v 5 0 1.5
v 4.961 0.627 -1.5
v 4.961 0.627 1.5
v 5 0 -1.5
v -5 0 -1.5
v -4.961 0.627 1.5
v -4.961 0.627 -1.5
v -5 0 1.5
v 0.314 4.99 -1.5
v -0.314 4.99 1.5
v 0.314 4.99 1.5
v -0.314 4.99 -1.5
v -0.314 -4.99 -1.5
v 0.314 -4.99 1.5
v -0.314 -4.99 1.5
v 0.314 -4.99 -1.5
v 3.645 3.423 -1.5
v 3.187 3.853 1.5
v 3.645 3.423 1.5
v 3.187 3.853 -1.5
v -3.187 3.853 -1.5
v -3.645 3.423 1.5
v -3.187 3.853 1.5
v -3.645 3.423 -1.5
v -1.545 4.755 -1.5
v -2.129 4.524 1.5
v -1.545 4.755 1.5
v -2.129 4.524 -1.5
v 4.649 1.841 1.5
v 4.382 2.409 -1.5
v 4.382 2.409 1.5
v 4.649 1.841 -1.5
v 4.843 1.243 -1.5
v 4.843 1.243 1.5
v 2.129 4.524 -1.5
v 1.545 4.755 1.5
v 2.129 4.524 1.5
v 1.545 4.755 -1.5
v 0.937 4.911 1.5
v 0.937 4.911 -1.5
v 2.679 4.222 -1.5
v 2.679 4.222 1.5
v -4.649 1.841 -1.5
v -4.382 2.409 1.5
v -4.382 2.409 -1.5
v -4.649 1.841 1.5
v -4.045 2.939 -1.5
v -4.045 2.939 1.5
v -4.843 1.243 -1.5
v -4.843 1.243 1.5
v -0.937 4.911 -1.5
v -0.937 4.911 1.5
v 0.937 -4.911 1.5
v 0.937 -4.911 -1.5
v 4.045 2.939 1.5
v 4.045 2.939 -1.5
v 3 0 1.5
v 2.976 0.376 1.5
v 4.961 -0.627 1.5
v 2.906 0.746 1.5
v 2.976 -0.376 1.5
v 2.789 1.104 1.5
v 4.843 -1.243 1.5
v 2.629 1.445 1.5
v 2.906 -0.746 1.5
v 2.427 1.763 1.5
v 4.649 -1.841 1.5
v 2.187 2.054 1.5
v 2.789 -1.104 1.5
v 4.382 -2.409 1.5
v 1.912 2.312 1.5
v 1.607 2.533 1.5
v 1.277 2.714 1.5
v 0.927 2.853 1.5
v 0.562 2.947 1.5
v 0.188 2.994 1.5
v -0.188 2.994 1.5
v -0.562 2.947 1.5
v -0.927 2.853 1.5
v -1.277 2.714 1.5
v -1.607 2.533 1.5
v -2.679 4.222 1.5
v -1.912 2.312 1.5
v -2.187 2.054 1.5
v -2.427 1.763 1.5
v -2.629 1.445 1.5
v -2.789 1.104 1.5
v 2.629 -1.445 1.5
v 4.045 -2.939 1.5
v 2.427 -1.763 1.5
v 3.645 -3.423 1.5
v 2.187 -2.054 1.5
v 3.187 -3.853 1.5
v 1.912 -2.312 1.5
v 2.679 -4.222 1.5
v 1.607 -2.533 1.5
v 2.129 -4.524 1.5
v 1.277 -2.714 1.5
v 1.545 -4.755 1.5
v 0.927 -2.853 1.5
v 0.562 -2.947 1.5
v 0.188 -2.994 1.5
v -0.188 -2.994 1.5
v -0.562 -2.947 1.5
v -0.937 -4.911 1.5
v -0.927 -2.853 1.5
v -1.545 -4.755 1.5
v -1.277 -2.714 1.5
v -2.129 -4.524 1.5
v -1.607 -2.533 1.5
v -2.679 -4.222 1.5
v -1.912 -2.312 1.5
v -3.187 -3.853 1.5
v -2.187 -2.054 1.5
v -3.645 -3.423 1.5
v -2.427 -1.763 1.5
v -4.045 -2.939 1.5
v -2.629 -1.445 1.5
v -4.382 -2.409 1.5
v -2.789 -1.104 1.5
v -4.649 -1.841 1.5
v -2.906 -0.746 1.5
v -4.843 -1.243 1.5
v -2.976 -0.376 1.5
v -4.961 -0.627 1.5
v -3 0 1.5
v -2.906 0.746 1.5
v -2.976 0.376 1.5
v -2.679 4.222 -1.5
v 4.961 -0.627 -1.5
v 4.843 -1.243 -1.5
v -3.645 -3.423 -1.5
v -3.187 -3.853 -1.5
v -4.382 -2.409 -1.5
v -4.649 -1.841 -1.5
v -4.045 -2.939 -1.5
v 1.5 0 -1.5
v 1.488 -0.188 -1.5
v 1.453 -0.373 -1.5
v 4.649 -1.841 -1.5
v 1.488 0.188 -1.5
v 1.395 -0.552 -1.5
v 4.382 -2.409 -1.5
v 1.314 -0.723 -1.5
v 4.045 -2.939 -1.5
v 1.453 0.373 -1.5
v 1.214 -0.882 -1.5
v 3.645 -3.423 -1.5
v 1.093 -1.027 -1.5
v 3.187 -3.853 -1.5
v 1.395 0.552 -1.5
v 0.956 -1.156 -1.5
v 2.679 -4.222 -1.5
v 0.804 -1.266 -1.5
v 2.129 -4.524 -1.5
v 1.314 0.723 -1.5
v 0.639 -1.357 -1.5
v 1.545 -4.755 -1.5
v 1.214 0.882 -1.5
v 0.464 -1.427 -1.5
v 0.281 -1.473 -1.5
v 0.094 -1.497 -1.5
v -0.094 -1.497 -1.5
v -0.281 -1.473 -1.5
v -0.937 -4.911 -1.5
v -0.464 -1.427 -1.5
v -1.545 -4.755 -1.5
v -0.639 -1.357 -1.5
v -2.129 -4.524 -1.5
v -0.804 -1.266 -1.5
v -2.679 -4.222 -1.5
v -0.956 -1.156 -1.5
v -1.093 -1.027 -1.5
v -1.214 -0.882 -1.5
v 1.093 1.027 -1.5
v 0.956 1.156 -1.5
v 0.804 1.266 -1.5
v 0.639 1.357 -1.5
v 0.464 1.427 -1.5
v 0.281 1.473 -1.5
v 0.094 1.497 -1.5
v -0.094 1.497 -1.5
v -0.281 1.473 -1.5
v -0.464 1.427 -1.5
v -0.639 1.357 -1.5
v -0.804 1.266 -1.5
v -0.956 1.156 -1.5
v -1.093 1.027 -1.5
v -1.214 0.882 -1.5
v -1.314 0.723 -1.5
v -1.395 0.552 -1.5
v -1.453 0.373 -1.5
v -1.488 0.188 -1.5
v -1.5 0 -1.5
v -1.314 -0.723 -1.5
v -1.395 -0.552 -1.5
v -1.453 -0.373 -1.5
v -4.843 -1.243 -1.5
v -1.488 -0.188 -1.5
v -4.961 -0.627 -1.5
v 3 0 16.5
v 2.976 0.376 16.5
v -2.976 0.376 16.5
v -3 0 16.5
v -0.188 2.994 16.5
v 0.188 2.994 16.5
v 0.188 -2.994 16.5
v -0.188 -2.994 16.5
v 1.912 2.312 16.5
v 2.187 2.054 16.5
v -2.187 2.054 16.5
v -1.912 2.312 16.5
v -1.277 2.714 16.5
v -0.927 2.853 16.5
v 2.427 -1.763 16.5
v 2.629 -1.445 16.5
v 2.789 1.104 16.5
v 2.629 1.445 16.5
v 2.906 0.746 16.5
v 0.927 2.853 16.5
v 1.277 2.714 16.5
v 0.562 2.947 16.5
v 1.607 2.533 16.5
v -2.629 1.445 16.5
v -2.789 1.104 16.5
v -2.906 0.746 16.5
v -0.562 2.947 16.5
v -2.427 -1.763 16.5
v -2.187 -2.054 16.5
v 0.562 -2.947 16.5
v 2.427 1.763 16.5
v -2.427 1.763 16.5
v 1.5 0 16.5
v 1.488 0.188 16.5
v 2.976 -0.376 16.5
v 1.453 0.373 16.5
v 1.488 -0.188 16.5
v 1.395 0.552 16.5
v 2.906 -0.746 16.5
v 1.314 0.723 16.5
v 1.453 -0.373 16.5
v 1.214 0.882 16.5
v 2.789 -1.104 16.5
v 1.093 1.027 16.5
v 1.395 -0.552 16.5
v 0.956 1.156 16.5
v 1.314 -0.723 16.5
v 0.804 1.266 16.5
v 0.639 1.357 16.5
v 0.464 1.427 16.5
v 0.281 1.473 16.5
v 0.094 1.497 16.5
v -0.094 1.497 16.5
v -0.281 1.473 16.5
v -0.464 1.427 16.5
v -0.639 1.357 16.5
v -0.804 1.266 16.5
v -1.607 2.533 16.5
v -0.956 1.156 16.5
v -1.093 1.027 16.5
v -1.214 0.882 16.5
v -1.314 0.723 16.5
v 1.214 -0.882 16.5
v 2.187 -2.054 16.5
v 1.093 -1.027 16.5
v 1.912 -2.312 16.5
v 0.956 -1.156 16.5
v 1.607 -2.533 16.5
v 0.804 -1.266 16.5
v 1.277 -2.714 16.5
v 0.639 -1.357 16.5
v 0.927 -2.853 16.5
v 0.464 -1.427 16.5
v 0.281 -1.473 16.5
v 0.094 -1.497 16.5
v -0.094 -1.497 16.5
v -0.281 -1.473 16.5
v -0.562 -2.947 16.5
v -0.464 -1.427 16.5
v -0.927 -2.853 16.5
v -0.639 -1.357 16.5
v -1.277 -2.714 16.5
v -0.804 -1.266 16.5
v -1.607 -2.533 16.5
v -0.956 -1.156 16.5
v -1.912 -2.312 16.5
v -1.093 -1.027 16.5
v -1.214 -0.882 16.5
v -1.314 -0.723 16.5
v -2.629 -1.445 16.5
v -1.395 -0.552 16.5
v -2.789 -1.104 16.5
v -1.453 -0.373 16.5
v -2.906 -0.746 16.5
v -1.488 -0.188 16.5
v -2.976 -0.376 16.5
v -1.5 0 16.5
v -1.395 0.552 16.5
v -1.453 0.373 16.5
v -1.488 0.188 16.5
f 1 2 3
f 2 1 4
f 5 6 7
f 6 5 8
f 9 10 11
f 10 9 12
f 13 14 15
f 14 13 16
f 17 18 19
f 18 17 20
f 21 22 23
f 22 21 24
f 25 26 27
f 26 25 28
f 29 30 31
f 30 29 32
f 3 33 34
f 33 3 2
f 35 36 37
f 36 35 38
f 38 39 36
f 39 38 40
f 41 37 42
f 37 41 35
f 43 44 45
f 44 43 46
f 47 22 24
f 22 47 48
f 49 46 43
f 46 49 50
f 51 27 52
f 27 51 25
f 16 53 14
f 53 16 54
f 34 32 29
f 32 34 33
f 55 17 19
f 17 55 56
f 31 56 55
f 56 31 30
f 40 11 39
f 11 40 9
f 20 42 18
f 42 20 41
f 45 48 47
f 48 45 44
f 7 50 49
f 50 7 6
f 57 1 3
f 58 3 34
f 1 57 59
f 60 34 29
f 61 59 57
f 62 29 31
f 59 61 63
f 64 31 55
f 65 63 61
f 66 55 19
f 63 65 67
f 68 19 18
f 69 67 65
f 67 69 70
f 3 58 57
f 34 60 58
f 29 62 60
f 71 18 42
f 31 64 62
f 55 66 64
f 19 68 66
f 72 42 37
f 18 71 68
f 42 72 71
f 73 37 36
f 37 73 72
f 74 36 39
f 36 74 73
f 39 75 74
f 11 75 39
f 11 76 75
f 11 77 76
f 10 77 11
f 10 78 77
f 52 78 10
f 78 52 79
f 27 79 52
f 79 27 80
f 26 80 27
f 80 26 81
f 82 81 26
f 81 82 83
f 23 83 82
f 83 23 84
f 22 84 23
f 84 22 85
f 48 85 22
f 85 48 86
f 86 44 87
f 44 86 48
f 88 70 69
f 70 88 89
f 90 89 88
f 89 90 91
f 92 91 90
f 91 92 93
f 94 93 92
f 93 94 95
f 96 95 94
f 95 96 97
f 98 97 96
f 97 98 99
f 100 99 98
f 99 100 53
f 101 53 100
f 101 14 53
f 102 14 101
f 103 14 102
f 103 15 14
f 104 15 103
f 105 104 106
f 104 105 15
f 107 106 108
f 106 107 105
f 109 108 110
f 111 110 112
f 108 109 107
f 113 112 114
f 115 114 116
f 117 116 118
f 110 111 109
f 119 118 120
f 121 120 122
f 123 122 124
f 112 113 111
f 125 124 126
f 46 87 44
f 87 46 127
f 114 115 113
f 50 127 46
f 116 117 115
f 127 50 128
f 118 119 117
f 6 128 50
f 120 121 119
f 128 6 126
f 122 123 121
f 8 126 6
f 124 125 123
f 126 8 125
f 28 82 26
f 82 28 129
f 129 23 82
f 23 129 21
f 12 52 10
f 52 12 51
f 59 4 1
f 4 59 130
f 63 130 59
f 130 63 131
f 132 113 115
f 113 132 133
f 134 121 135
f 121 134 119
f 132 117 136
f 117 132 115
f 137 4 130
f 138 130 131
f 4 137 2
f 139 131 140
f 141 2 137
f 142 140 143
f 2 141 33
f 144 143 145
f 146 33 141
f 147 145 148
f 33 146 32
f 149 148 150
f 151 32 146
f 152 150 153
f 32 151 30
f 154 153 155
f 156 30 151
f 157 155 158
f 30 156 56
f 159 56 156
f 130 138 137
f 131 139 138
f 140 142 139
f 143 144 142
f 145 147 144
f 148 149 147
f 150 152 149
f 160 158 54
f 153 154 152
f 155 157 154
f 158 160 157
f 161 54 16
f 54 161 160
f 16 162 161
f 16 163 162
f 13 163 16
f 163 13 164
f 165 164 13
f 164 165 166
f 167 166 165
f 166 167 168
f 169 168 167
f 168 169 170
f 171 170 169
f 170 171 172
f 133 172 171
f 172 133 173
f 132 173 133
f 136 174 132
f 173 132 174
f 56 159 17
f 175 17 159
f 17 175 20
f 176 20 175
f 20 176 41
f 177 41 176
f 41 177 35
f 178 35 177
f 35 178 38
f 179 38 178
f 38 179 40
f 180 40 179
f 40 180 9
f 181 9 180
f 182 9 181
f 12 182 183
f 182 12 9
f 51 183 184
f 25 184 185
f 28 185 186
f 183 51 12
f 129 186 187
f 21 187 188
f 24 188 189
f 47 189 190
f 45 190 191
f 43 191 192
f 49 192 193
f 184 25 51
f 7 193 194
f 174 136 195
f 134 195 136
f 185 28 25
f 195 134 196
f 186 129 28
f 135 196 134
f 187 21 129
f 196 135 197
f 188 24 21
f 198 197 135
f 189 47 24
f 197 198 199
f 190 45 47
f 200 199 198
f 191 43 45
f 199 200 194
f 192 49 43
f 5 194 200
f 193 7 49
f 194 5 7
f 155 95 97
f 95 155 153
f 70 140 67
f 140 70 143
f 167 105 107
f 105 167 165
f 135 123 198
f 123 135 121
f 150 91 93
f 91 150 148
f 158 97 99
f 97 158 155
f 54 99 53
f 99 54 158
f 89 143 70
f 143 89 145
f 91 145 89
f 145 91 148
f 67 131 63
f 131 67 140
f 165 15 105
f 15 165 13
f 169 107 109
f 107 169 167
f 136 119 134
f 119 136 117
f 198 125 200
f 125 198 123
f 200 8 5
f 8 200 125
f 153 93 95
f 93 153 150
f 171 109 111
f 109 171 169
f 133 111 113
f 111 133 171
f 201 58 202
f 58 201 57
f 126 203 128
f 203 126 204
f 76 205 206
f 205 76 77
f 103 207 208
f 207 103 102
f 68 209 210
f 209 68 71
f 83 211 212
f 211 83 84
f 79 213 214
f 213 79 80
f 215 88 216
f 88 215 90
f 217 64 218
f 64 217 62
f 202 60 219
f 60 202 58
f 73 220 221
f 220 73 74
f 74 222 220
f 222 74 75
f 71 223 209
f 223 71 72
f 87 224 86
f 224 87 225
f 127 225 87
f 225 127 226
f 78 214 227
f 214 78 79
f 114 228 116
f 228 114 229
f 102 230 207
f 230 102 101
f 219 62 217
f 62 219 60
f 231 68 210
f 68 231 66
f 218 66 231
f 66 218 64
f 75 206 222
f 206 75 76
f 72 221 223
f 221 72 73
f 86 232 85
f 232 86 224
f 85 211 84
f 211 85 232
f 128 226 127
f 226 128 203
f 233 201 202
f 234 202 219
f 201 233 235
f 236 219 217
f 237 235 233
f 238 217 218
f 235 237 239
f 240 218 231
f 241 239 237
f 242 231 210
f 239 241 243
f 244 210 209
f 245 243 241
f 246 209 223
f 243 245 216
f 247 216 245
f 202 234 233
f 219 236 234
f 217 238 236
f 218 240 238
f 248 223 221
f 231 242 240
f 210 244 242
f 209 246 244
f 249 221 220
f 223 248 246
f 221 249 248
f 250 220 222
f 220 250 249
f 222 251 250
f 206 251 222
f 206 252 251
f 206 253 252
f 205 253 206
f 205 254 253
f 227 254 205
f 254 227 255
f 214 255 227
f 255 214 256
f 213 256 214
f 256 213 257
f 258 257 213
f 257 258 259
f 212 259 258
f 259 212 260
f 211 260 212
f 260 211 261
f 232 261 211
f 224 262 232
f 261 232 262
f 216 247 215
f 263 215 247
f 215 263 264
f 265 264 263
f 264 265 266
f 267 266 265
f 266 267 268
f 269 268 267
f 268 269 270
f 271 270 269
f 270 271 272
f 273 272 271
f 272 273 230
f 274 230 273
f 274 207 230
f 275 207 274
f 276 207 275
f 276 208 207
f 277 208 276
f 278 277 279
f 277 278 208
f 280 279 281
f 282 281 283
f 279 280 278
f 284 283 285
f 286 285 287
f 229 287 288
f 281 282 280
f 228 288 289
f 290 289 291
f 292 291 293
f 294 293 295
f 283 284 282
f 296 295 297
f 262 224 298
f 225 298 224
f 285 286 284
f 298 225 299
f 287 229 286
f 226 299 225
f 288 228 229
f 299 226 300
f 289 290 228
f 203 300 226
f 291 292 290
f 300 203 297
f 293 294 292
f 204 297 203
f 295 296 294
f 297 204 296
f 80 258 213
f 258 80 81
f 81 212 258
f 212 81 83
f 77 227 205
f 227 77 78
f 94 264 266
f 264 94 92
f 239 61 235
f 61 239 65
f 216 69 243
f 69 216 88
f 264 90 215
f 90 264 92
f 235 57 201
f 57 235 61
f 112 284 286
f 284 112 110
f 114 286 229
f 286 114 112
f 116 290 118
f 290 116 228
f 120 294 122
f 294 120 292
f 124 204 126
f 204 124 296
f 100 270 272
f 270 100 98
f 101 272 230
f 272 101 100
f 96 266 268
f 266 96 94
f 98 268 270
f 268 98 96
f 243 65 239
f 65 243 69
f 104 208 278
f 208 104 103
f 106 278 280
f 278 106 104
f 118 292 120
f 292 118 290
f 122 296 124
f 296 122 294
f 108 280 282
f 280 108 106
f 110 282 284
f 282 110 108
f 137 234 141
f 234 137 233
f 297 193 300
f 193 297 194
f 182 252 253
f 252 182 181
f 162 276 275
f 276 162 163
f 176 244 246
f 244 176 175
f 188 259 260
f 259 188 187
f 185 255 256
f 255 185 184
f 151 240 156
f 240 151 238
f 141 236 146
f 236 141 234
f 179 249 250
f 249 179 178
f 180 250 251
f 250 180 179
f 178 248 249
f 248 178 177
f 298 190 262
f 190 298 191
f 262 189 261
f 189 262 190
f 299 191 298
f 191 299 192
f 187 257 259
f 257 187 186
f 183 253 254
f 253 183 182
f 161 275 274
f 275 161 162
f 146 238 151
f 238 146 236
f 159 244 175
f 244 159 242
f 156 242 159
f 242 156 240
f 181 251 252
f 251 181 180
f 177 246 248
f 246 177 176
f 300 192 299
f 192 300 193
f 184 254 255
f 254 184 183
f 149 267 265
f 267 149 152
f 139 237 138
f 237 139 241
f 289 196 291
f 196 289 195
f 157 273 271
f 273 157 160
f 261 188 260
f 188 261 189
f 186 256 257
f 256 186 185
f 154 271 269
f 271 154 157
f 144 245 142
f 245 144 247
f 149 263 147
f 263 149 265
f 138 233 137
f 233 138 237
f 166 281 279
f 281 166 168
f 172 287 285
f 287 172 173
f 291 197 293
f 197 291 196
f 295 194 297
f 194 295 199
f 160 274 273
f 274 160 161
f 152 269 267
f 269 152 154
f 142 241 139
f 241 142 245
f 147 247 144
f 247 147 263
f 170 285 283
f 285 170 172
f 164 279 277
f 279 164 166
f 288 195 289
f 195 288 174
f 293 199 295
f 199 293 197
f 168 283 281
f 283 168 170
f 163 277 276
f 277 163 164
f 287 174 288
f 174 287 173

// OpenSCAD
$fn = 50;


difference() {
	union() {
		translate(v = [0, 0, -1.5000000000]) {
			rotate(a = [0, 0, 0]) {
				cylinder(h = 3, r = 5.0000000000);
			}
		}
		translate(v = [0, 0, -1.5000000000]) {
			rotate(a = [0, 0, 0]) {
				cylinder(h = 18, r = 3.0000000000);
			}
		}
	}
	union() {
		translate(v = [0, 0, -125.0000000000]) {
			rotate(a = [0, 0, 0]) {
				cylinder(h = 250, r = 1.5000000000);
			}
		}
	}
}
